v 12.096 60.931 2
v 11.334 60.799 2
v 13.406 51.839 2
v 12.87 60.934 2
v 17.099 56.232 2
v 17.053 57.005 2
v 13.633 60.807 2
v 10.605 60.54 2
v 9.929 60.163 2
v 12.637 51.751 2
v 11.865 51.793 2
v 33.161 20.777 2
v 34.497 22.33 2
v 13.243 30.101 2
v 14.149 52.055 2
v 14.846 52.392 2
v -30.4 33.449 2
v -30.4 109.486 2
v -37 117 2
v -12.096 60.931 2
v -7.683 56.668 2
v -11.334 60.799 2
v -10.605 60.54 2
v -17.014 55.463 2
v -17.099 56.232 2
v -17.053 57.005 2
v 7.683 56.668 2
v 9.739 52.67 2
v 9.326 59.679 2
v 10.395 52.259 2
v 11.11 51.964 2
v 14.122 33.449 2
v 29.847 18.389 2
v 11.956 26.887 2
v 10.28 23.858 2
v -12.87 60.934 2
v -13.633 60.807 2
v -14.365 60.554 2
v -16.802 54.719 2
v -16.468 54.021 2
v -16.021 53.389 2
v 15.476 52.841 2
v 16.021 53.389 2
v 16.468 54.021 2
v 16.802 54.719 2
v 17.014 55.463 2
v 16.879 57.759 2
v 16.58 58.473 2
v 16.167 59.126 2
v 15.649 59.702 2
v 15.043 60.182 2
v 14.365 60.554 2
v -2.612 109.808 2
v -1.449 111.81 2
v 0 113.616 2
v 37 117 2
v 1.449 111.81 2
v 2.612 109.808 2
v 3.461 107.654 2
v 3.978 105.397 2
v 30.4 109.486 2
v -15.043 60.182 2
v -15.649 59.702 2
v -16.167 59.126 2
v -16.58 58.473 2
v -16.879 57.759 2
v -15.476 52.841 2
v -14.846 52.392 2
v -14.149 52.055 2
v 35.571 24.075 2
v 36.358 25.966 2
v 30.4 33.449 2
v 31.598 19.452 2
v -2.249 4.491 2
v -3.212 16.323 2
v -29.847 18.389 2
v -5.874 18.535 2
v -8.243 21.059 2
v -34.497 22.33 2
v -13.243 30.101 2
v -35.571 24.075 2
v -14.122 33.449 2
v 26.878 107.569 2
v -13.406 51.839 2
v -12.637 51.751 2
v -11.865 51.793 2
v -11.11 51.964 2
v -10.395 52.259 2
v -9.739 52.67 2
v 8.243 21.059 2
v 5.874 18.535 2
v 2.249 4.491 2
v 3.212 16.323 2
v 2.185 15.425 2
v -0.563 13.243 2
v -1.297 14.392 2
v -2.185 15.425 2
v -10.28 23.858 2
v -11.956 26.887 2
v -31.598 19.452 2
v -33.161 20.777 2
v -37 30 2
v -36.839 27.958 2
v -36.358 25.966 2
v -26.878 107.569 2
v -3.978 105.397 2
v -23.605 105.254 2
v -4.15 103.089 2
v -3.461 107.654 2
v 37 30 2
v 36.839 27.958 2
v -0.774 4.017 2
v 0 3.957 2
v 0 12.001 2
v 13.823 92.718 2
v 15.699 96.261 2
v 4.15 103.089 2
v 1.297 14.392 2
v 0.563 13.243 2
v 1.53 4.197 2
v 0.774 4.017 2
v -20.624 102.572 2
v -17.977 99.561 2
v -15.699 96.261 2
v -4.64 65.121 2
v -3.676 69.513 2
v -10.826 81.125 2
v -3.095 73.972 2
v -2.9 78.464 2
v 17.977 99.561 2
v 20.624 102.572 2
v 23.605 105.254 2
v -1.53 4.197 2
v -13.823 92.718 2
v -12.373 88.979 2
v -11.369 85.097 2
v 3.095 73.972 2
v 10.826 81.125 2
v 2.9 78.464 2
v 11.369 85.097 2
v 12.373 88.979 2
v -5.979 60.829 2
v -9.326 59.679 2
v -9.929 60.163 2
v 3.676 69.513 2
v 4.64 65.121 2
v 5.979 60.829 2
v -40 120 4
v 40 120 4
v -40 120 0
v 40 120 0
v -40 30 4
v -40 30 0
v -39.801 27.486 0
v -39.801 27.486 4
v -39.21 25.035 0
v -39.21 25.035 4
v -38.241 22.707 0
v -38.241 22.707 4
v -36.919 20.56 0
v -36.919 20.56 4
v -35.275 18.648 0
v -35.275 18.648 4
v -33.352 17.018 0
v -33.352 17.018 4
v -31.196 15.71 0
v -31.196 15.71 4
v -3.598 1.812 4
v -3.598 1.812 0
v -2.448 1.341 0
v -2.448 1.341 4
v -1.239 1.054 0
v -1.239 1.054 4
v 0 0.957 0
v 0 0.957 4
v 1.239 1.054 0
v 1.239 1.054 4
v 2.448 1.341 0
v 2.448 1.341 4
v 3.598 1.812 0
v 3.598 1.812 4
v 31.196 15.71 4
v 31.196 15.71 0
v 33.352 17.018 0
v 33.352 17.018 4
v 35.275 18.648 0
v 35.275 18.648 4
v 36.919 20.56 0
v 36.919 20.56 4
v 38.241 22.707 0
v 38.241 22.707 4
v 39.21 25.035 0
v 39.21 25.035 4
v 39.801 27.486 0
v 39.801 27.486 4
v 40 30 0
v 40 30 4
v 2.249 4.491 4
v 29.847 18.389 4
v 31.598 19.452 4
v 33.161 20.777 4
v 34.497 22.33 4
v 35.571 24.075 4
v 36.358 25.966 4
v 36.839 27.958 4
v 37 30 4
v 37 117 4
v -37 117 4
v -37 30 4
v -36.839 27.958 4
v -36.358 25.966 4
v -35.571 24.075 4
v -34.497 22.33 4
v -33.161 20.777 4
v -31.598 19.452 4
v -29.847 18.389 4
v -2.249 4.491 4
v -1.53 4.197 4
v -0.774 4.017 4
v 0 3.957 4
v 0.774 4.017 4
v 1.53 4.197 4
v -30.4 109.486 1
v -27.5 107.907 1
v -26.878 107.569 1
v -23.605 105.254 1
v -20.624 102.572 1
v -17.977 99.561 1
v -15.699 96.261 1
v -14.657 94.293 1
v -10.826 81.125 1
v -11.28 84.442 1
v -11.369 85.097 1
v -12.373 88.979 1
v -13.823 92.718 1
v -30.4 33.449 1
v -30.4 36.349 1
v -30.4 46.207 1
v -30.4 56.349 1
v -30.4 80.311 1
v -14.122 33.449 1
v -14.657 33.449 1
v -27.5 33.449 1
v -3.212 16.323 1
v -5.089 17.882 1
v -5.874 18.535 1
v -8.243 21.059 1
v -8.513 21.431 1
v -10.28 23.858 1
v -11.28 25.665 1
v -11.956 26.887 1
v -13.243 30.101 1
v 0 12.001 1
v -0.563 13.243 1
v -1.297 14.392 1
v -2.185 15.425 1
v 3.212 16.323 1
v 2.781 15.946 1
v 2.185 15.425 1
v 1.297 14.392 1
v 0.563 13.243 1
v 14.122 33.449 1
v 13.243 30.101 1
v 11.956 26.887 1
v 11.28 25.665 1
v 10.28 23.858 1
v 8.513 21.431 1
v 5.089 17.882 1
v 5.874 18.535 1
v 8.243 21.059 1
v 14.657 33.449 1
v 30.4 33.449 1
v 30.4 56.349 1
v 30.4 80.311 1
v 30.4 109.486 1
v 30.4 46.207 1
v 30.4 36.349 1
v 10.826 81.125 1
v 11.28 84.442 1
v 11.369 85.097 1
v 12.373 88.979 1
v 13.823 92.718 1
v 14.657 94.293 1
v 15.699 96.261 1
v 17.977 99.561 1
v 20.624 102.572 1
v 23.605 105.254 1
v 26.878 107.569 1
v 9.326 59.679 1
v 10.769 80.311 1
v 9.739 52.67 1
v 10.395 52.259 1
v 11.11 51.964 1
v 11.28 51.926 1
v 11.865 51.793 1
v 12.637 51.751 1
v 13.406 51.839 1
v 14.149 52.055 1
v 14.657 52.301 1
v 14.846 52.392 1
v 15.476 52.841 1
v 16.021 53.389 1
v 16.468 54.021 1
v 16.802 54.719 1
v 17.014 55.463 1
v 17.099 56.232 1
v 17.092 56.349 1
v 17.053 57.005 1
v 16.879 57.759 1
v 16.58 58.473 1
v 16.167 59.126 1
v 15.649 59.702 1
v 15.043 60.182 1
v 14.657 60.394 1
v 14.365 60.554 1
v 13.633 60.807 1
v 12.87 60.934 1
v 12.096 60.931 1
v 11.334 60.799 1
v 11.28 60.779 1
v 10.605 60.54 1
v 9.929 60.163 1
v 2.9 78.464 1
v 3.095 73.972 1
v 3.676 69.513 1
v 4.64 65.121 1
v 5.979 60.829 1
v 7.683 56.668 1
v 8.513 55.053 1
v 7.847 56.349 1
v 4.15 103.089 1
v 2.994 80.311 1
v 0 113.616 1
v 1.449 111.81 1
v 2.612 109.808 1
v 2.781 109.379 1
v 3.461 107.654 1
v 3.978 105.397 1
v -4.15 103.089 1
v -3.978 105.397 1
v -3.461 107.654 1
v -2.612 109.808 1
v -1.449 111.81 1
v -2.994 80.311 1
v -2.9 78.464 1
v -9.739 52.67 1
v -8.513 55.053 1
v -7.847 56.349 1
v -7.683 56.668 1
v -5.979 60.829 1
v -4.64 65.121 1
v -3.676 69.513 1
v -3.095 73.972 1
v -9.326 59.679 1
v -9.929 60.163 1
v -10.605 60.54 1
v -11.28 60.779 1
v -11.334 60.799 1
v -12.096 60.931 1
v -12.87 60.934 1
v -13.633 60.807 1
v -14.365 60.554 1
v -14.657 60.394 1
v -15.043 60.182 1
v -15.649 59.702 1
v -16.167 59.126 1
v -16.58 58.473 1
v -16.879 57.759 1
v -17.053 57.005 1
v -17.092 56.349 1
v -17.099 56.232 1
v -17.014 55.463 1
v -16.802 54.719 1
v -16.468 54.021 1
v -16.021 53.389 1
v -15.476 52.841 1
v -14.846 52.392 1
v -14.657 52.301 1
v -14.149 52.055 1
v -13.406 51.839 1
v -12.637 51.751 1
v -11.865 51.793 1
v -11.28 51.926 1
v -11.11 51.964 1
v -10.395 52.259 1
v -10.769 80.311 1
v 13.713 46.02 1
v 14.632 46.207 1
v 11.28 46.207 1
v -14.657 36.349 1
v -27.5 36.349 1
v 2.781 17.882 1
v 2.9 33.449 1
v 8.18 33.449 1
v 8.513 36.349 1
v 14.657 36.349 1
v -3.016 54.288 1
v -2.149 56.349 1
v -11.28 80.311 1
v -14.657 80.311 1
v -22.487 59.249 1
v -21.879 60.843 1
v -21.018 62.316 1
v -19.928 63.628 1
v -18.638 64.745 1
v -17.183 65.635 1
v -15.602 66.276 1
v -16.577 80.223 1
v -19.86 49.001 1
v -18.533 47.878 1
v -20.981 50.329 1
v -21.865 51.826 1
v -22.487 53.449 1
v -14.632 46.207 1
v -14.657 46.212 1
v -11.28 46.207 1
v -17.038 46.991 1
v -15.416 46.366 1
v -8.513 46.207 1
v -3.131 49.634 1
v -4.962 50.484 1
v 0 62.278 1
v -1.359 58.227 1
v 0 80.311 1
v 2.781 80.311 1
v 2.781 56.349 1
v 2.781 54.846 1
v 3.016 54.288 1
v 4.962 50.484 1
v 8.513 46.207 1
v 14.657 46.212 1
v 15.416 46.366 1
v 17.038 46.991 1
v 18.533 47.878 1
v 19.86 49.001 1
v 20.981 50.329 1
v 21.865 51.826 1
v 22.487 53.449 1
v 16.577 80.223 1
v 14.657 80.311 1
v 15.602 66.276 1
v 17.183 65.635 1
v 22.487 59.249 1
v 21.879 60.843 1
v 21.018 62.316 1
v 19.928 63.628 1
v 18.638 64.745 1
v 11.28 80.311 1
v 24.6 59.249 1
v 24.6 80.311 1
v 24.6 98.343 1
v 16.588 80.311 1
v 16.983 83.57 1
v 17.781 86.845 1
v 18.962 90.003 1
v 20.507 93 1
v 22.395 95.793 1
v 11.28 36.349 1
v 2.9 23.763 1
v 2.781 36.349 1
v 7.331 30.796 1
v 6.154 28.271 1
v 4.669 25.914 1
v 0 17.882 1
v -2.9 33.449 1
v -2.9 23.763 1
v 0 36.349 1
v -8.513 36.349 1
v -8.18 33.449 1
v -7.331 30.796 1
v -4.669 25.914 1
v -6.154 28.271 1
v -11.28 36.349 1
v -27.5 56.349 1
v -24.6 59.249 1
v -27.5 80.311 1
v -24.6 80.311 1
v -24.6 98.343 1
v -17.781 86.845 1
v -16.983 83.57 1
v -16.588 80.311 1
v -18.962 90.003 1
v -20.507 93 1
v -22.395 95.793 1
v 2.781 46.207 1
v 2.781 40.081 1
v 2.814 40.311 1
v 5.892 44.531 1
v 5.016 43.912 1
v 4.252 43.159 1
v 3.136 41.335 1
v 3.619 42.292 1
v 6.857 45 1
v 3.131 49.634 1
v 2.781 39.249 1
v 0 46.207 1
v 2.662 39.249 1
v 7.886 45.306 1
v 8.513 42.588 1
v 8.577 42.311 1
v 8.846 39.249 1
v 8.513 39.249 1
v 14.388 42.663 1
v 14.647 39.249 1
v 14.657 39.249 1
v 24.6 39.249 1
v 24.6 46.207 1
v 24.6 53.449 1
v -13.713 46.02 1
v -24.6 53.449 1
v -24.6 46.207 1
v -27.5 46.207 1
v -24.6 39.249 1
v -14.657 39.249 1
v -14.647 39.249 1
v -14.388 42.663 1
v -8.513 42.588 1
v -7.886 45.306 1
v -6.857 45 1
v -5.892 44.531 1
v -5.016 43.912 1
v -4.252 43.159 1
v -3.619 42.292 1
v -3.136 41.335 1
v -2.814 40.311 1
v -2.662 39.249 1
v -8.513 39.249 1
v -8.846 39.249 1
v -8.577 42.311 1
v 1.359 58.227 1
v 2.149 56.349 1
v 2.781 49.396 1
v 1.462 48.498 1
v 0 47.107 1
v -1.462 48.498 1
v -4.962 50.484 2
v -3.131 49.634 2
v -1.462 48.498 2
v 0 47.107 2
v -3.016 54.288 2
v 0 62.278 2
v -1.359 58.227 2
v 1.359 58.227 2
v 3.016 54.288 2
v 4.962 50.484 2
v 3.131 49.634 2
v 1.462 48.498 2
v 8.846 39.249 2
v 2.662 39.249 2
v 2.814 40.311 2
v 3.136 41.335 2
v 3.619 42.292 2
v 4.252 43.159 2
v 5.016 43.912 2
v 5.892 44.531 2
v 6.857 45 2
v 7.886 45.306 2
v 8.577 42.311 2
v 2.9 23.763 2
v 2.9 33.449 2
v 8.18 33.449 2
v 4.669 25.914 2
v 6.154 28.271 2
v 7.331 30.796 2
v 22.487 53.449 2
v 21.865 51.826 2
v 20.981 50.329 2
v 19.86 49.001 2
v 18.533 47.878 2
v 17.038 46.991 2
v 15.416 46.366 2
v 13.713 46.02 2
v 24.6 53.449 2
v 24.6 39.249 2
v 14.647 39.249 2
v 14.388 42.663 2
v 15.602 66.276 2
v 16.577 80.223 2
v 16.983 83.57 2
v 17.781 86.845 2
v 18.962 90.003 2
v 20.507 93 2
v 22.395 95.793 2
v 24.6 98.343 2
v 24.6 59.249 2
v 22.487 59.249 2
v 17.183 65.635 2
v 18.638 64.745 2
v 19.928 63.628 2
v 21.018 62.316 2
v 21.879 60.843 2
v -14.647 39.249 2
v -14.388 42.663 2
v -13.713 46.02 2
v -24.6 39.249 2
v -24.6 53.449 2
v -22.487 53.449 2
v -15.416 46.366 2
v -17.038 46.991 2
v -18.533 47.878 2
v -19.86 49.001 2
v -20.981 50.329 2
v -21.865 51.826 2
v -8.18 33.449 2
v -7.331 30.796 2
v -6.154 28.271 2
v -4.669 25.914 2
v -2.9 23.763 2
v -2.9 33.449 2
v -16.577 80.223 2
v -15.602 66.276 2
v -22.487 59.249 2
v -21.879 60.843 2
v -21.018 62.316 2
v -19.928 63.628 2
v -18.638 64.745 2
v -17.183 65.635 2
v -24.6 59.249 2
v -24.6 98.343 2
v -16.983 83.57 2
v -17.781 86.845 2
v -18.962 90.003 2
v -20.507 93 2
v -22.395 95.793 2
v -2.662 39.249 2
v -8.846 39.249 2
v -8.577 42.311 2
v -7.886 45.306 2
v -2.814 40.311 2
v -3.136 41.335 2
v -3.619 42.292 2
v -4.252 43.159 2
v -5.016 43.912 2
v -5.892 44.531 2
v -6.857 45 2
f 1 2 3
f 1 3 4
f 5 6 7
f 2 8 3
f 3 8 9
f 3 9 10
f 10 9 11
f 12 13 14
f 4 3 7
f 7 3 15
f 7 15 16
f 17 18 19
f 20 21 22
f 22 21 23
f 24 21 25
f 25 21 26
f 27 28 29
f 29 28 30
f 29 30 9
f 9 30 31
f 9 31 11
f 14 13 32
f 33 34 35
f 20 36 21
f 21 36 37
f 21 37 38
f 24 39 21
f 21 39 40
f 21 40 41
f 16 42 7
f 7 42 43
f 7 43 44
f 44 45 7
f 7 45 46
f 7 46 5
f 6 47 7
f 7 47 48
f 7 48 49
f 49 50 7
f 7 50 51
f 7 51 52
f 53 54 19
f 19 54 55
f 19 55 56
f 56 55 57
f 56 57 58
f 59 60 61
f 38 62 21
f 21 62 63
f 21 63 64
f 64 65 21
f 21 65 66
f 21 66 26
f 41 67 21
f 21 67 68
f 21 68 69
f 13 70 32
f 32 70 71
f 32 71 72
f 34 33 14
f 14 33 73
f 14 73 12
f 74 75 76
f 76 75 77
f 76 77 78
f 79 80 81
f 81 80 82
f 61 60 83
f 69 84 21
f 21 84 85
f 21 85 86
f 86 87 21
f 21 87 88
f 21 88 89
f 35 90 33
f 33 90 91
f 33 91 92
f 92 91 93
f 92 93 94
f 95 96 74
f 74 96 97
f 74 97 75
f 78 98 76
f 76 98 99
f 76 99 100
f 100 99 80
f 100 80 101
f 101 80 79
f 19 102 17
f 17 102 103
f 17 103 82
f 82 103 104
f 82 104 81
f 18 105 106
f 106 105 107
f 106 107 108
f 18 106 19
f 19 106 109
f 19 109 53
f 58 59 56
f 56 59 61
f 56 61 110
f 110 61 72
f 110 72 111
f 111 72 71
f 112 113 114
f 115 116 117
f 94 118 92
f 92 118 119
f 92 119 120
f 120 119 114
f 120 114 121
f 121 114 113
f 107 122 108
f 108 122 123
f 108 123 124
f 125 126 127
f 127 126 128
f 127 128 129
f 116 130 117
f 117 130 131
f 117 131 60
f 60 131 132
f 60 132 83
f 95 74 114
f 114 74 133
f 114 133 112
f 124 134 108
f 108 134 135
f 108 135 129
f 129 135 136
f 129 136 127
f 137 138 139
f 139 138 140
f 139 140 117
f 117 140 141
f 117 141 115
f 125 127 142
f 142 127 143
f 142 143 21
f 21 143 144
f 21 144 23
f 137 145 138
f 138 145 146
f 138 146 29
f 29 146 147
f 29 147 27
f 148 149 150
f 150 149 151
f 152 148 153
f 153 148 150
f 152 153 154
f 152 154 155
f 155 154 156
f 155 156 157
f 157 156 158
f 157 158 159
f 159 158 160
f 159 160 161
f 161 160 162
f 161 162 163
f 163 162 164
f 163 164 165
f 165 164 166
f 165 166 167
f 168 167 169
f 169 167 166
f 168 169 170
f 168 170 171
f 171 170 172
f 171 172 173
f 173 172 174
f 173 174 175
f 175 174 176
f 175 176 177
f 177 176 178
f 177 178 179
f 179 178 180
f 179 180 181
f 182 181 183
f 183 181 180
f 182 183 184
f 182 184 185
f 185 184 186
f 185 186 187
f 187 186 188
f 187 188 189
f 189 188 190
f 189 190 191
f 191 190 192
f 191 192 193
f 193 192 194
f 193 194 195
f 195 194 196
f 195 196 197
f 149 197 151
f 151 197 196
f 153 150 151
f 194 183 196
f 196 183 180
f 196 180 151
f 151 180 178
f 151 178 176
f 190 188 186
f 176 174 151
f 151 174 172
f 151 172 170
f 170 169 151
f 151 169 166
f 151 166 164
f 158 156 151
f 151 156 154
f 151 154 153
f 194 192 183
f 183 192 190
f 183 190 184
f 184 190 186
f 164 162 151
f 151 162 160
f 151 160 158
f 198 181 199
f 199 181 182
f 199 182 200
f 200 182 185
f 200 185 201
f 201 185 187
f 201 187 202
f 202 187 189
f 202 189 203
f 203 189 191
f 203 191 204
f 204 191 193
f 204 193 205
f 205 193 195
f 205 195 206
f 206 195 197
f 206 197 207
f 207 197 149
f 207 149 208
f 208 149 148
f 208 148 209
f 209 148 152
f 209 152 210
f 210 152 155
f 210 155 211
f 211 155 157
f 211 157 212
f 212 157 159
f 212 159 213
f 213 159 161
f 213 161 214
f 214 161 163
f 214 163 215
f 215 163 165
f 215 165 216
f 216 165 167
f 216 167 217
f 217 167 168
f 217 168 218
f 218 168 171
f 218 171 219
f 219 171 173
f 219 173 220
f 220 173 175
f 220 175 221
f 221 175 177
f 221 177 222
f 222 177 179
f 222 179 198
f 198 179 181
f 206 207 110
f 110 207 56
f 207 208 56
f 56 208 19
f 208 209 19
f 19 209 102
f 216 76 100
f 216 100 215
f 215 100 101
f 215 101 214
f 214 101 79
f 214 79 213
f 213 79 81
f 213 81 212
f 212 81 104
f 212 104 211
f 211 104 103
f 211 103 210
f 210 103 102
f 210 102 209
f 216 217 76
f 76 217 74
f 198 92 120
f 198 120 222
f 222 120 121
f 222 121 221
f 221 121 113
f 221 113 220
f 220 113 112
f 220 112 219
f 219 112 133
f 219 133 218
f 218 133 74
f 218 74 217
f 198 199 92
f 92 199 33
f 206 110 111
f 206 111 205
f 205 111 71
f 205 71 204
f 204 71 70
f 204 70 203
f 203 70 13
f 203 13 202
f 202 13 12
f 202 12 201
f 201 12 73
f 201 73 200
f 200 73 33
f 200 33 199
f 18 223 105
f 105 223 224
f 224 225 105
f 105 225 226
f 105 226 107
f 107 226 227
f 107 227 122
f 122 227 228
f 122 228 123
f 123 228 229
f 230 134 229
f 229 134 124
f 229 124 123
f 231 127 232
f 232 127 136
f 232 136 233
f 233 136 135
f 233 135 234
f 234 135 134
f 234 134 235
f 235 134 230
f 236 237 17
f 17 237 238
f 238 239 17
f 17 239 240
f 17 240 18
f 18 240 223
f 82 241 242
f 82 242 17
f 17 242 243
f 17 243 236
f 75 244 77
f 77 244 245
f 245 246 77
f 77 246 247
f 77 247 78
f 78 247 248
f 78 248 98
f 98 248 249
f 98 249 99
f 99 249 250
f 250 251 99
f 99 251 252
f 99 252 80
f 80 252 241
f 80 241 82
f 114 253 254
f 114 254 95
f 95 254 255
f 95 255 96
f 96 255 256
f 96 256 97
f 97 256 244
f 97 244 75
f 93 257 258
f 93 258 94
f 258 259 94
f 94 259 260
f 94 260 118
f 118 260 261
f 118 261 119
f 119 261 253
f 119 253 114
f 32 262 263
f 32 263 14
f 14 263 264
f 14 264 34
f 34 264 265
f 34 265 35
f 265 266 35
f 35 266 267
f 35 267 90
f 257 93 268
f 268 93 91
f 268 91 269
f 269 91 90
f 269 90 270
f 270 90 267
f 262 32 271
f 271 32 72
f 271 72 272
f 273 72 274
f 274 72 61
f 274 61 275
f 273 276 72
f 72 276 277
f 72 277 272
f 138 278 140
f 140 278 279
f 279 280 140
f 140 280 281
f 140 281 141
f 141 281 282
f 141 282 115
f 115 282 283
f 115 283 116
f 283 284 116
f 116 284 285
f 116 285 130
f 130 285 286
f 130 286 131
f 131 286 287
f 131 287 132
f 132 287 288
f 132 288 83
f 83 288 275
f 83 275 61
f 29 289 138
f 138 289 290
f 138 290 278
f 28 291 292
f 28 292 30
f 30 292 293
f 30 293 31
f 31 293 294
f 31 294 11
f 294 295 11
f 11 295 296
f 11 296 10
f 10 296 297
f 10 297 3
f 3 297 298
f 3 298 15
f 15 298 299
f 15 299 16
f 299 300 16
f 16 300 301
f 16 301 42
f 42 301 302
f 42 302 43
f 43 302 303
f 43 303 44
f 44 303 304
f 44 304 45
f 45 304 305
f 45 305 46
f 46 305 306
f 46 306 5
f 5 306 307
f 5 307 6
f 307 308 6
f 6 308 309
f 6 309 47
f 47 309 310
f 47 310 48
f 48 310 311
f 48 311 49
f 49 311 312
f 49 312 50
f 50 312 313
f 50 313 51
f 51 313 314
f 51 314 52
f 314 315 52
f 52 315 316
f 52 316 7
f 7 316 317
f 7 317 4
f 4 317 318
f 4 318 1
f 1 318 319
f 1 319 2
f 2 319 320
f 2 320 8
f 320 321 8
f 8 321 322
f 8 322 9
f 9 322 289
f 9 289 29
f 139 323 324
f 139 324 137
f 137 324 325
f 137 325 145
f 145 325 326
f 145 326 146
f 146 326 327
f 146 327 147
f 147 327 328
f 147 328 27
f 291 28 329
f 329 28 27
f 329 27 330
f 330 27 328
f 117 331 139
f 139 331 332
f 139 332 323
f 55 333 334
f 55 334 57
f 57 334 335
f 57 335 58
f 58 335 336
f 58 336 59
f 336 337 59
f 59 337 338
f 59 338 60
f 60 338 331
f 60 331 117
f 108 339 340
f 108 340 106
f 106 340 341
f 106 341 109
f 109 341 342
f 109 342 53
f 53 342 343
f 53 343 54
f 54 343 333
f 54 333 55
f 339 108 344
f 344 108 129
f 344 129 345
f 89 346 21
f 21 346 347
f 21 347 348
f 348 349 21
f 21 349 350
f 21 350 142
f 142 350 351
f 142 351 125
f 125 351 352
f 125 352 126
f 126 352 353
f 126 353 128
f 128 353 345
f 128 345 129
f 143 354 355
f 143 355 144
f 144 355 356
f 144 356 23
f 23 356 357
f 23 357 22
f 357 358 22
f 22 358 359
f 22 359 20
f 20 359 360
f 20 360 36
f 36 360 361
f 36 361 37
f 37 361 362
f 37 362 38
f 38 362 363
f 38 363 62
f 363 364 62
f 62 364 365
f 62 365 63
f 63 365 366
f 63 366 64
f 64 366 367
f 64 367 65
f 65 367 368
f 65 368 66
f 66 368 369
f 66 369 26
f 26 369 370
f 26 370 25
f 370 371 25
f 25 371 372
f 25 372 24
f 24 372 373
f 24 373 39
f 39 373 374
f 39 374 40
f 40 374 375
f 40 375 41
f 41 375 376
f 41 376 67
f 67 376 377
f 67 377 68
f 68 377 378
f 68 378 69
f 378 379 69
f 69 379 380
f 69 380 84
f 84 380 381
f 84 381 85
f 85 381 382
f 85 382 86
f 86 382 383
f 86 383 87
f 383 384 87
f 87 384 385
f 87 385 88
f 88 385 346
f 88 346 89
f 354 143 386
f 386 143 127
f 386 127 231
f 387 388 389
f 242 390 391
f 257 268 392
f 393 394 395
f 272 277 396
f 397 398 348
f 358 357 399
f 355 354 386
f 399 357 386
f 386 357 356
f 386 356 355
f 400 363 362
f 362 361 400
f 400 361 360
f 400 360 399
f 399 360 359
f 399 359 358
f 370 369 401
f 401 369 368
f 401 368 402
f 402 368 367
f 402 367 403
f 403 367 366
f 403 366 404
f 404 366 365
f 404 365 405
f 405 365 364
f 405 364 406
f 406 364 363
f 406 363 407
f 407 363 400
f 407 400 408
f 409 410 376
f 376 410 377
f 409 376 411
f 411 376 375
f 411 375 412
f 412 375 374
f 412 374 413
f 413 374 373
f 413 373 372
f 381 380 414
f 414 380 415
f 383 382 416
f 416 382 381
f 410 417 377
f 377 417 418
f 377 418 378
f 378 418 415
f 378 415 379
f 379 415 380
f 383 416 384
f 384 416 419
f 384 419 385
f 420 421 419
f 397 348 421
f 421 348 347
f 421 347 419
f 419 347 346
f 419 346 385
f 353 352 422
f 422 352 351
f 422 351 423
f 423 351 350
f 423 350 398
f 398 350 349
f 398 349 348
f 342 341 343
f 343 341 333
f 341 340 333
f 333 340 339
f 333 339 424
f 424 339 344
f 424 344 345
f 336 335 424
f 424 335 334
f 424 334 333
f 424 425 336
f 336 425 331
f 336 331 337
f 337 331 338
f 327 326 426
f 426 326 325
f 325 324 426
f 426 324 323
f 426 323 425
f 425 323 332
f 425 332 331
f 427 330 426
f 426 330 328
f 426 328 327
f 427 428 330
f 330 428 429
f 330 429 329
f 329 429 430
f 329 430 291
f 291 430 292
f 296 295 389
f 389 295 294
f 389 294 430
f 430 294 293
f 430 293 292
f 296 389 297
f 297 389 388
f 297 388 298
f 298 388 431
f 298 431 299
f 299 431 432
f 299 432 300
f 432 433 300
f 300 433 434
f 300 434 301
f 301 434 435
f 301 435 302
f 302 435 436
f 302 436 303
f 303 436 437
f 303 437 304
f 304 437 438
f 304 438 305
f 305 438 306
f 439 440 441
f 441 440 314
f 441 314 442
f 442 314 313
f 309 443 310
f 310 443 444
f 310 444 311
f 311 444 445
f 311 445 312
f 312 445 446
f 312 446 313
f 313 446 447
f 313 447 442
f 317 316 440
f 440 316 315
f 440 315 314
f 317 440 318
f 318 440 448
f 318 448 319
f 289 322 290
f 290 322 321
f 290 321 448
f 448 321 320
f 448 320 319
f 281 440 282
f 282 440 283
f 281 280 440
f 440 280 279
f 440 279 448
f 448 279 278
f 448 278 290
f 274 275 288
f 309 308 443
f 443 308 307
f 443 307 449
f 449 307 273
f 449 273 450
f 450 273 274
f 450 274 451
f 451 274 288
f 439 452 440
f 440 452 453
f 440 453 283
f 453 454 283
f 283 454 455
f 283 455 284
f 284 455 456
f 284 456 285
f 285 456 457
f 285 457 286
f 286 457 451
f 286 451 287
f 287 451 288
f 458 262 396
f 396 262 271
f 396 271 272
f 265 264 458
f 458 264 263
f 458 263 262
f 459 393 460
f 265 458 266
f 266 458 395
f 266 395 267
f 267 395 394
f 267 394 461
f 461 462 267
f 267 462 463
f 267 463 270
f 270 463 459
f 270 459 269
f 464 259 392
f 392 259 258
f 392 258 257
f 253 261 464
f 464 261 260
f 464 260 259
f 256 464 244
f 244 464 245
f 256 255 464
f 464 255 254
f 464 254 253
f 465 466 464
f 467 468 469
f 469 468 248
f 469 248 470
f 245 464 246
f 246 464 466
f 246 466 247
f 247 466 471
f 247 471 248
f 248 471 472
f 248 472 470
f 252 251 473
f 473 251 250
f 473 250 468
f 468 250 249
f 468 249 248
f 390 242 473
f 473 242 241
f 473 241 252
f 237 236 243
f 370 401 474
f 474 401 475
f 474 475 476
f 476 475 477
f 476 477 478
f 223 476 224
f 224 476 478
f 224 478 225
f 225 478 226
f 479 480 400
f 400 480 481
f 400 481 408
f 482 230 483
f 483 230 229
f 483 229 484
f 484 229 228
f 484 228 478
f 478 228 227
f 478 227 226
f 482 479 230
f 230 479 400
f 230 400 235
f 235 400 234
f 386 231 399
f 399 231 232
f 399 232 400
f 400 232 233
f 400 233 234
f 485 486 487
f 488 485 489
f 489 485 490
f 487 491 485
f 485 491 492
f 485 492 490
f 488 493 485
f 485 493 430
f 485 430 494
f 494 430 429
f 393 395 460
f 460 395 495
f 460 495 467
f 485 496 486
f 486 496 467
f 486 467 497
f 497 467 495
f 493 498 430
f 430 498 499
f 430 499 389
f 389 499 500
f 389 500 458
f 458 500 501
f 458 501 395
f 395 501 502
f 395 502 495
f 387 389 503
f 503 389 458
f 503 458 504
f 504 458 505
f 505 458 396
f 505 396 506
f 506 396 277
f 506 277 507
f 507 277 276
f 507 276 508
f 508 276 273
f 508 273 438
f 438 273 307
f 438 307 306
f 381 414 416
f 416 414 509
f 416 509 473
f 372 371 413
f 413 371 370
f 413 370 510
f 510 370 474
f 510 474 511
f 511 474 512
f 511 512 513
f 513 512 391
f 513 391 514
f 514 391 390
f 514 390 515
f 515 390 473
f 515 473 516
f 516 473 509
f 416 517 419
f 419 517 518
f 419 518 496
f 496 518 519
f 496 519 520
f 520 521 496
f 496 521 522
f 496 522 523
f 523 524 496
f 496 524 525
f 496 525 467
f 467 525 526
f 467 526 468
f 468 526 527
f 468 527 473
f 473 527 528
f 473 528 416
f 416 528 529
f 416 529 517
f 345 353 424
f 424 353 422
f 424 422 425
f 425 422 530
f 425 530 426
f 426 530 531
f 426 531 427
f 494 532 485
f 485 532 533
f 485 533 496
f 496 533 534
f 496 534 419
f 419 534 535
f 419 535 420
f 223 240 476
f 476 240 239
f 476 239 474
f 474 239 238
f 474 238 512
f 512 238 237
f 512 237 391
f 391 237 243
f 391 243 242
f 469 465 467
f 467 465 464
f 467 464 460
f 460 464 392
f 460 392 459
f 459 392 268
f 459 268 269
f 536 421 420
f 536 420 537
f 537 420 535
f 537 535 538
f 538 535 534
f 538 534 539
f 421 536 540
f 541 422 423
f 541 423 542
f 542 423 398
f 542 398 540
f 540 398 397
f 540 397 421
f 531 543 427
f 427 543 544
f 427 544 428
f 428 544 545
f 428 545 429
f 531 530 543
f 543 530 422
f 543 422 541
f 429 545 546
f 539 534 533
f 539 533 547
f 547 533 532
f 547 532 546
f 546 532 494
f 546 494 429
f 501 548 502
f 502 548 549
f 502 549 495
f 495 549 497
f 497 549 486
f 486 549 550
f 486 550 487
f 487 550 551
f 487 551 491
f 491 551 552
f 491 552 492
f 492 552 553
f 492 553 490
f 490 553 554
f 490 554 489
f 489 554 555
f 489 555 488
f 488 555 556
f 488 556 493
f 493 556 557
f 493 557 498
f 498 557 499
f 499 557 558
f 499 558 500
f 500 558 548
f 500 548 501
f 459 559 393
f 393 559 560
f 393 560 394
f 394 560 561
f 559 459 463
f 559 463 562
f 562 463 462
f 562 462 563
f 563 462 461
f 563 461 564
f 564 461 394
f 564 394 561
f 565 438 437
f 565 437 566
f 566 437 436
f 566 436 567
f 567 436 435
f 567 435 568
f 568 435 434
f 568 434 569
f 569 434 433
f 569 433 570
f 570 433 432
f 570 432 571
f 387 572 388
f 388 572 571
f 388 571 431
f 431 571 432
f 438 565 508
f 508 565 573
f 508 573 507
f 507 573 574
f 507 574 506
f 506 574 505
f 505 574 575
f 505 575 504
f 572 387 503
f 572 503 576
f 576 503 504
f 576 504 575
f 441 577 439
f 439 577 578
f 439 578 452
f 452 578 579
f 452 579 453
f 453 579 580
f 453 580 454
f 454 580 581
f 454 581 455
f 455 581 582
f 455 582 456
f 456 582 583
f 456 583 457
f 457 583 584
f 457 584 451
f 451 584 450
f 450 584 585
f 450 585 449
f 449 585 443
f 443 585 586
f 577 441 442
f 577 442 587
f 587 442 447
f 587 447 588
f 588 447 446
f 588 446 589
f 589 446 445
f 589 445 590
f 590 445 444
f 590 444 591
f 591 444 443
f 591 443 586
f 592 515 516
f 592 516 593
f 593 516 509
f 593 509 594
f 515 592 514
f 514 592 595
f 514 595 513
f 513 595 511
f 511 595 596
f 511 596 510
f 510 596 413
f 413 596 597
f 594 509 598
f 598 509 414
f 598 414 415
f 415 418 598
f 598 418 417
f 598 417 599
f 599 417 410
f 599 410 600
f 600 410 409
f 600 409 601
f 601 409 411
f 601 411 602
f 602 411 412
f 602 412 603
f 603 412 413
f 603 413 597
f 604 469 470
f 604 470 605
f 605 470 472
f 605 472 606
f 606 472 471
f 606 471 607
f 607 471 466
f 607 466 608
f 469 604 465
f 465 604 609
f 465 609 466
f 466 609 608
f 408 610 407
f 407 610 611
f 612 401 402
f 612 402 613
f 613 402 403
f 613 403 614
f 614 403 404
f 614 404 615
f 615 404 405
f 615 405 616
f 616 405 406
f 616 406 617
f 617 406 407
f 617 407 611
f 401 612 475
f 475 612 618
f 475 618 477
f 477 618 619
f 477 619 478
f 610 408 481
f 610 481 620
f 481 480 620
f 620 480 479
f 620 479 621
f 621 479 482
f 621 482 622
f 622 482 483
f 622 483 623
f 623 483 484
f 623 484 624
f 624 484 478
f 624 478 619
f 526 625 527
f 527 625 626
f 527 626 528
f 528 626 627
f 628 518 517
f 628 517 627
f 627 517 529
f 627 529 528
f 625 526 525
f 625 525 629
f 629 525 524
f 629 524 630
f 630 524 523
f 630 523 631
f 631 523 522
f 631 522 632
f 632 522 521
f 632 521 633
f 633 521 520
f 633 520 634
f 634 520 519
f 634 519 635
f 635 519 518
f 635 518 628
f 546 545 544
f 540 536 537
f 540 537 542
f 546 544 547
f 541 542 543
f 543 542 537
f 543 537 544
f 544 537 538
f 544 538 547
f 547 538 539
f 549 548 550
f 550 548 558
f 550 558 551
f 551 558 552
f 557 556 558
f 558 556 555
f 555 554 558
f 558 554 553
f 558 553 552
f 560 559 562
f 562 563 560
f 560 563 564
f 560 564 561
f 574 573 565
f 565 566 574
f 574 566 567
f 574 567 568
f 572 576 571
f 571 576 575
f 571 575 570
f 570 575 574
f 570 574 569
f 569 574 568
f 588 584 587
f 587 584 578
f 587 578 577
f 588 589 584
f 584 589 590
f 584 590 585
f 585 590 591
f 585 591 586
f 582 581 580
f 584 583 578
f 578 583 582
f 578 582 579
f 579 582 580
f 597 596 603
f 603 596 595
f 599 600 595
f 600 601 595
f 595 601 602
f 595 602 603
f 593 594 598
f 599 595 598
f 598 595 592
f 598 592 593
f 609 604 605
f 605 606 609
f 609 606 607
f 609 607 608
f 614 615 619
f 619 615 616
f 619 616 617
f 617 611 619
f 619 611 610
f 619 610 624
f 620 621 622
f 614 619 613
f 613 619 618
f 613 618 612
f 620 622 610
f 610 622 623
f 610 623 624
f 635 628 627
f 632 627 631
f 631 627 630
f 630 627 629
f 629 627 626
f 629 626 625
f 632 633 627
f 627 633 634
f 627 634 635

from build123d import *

# Parameters (mm, degrees)
EXTRUDE_1_DEPTH     = 2
EXTRUDE_2_DEPTH     = 2
OTHER_START         = 1
OTHER_1_DEPTH       = 1
CUT_EXTRUDE_1_DEPTH = 10


# Read off the part's stored shape, not the designer's step: Полость1
with BuildPart() as part:
    # Эскиз1 → Бобышка-Вытянуть1 (new body)
    with BuildSketch(Plane.XY):
        with BuildLine():
            Line((-3.59812982, 1.811928513), (-31.19625964, 15.709658955))
            ThreePointArc((-31.19625964, 15.709658955), (-37.622410841, 21.607746257), (-40, 30))
            Line((-40, 30), (-40, 120))
            Line((-40, 120), (40, 120))
            Line((40, 120), (40, 30))
            ThreePointArc((40, 30), (37.622410841, 21.607746257), (31.19625964, 15.709658955))
            Line((31.19625964, 15.709658955), (3.59812982, 1.811928513))
            ThreePointArc((3.59812982, 1.811928513), (0, 0.957099036), (-3.59812982, 1.811928513))
        make_face()
    extrude(amount=EXTRUDE_1_DEPTH)

    # Эскиз2 → Бобышка-Вытянуть2 (add)
    with BuildSketch(Plane.XY.offset(2)):
        with BuildLine():
            Line((40, 120), (-40, 120))
            Line((-40, 120), (-40, 30))
            ThreePointArc((-40, 30), (-37.622410841, 21.607746257), (-31.19625964, 15.709658955))
            Line((-31.19625964, 15.709658955), (-3.59812982, 1.811928513))
            ThreePointArc((-3.59812982, 1.811928513), (0, 0.957099036), (3.59812982, 1.811928513))
            Line((3.59812982, 1.811928513), (31.19625964, 15.709658955))
            ThreePointArc((31.19625964, 15.709658955), (37.622410841, 21.607746257), (40, 30))
            Line((40, 30), (40, 120))
        make_face()
        with BuildLine():
            Line((37, 117), (-37, 117))
            Line((-37, 117), (-37, 30))
            ThreePointArc((-37, 30), (-35.068208808, 23.181293834), (-29.846960958, 18.389097901))
            Line((-29.846960958, 18.389097901), (-2.248831138, 4.491367459))
            ThreePointArc((-2.248831138, 4.491367459), (0, 3.957099036), (2.248831138, 4.491367459))
            Line((2.248831138, 4.491367459), (29.846960958, 18.389097901))
            ThreePointArc((29.846960958, 18.389097901), (35.068208808, 23.181293834), (37, 30))
            Line((37, 30), (37, 117))
        make_face(mode=Mode.SUBTRACT)
    extrude(amount=EXTRUDE_2_DEPTH)

    # Полость1 outline → Полость1 (cut)
    with BuildSketch(Plane.XY.offset(OTHER_START)):
        with BuildLine():
            ThreePointArc((9.788029472, 60.549586915), (17.495233568, 56.130696454), (9.431968209, 52.400905625))
            ThreePointArc((9.431968209, 52.400905625), (4.262579544, 64.984556644), (2.5, 78.473966026))
            Line((2.5, 78.473966026), (3.75, 103.098966026))
            ThreePointArc((3.75, 103.098966026), (2.7812152, 108.402266884), (0, 113.020533442))
            ThreePointArc((0, 113.020533442), (-2.7812152, 108.402266884), (-3.75, 103.098966026))
            Line((-3.75, 103.098966026), (-2.5, 78.473966026))
            ThreePointArc((-2.5, 78.473966026), (-4.262579544, 64.984556644), (-9.431968209, 52.400905625))
            ThreePointArc((-9.431968209, 52.400905625), (-17.495233567, 56.130696454), (-9.788029472, 60.549586915))
            Line((-9.788029472, 60.549586915), (-11.224736233, 81.095450805))
            ThreePointArc((-11.224736233, 81.095450805), (-16.940759264, 97.456053222), (-30, 108.848966026))
            Line((-30, 108.848966026), (-30, 33.848966026))
            Line((-30, 33.848966026), (-13.791634566, 33.848966026))
            ThreePointArc((-13.791634566, 33.848966026), (-10.030008845, 24.210277963), (-2.972883984, 16.643830691))
            ThreePointArc((-2.972883984, 16.643830691), (-1.271172874, 15.008808512), (0, 13.020533442))
            ThreePointArc((0, 13.020533442), (1.271172874, 15.008808512), (2.972883984, 16.643830691))
            ThreePointArc((2.972883984, 16.643830691), (10.030008845, 24.210277963), (13.791634566, 33.848966026))
            Line((13.791634566, 33.848966026), (30, 33.848966026))
            Line((30, 33.848966026), (30, 108.848966026))
            ThreePointArc((30, 108.848966026), (16.940759264, 97.456053222), (11.224736233, 81.095450805))
            Line((11.224736233, 81.095450805), (9.788029472, 60.549586915))
        make_face()
        with BuildLine():
            ThreePointArc((-2.5, 22.780752061), (-6.389541147, 27.869966821), (-8.687410968, 33.848966026))
            Line((-8.687410968, 33.848966026), (-2.5, 33.848966026))
            Line((-2.5, 33.848966026), (-2.5, 22.780752061))
        make_face(mode=Mode.SUBTRACT)
        with BuildLine():
            ThreePointArc((-13.200536483, 46.373533772), (-13.986370475, 42.647666246), (-14.25, 38.848966026))
            Line((-14.25, 38.848966026), (-25, 38.848966026))
            Line((-25, 38.848966026), (-25, 53.848966026))
            Line((-25, 53.848966026), (-22.182458365, 53.848966026))
            ThreePointArc((-22.182458365, 53.848966026), (-18.897043641, 48.662755473), (-13.200536483, 46.373533772))
        make_face(mode=Mode.SUBTRACT)
        with BuildLine():
            ThreePointArc((-8.161111111, 45.763756043), (-3.92918135, 43.397470053), (-2.25, 38.848966026))
            Line((-2.25, 38.848966026), (-9.25, 38.848966026))
            ThreePointArc((-9.25, 38.848966026), (-8.976110771, 42.348966026), (-8.161111111, 45.763756043))
        make_face(mode=Mode.SUBTRACT)
        with BuildLine():
            Line((2.5, 22.780752061), (2.5, 33.848966026))
            Line((2.5, 33.848966026), (8.687410969, 33.848966026))
            ThreePointArc((8.687410969, 33.848966026), (6.389541147, 27.869966821), (2.5, 22.780752061))
        make_face(mode=Mode.SUBTRACT)
        with BuildLine():
            ThreePointArc((2.25, 38.848966026), (3.92918135, 43.397470053), (8.161111111, 45.763756043))
            ThreePointArc((8.161111111, 45.763756043), (8.976110771, 42.348966026), (9.25, 38.848966026))
            Line((9.25, 38.848966026), (2.25, 38.848966026))
        make_face(mode=Mode.SUBTRACT)
        with BuildLine():
            ThreePointArc((0, 63.756825508), (2.33883829, 56.831501462), (5.545675565, 50.262904017))
            ThreePointArc((5.545675565, 50.262904017), (2.504193555, 48.773385172), (0, 46.493408451))
            ThreePointArc((0, 46.493408451), (-2.504193555, 48.773385172), (-5.545675565, 50.262904017))
            ThreePointArc((-5.545675565, 50.262904017), (-2.33883829, 56.831501462), (0, 63.756825508))
        make_face(mode=Mode.SUBTRACT)
        with BuildLine():
            ThreePointArc((14.25, 38.848966026), (13.986370475, 42.647666246), (13.200536483, 46.373533772))
            ThreePointArc((13.200536483, 46.373533772), (18.897043642, 48.662755473), (22.182458366, 53.848966026))
            Line((22.182458366, 53.848966026), (25, 53.848966026))
            Line((25, 53.848966026), (25, 38.848966026))
            Line((25, 38.848966026), (14.25, 38.848966026))
        make_face(mode=Mode.SUBTRACT)
        with BuildLine():
            ThreePointArc((-15.180187421, 65.983103008), (-19.636717055, 63.353769354), (-22.182458365, 58.848966026))
            Line((-22.182458365, 58.848966026), (-25, 58.848966026))
            Line((-25, 58.848966026), (-25, 99.303564565))
            ThreePointArc((-25, 99.303564565), (-18.795712851, 90.606876243), (-16.177801663, 80.249651334))
            Line((-16.177801663, 80.249651334), (-15.180187421, 65.983103008))
        make_face(mode=Mode.SUBTRACT)
        with BuildLine():
            ThreePointArc((16.177801663, 80.249651334), (18.795712851, 90.606876243), (25, 99.303564565))
            Line((25, 99.303564565), (25, 58.848966026))
            Line((25, 58.848966026), (22.182458366, 58.848966026))
            ThreePointArc((22.182458366, 58.848966026), (19.636717055, 63.353769354), (15.180187421, 65.983103008))
            Line((15.180187421, 65.983103008), (16.177801663, 80.249651334))
        make_face(mode=Mode.SUBTRACT)
    extrude(amount=OTHER_1_DEPTH, mode=Mode.SUBTRACT)

    # Эскиз3 → Вырез-Вытянуть1 (cut)
    with BuildSketch(Plane.XY.offset(1)):
        with BuildLine():
            Line((-30.4, 109.485933086), (-30.4, 33.448966026))
            Line((-30.4, 33.448966026), (-14.122431386, 33.448966026))
            ThreePointArc((-14.122431386, 33.448966026), (-10.280405338, 23.857967906), (-3.211502278, 16.322782533))
            ThreePointArc((-3.211502278, 16.322782533), (-1.296555795, 14.391675131), (0, 12.001039461))
            ThreePointArc((0, 12.001039461), (1.296555795, 14.391675131), (3.211502278, 16.322782533))
            ThreePointArc((3.211502278, 16.322782533), (10.280405338, 23.857967906), (14.122431386, 33.448966026))
            Line((14.122431386, 33.448966026), (30.4, 33.448966026))
            Line((30.4, 33.448966026), (30.4, 109.485933086))
            ThreePointArc((30.4, 109.485933086), (16.789759987, 97.944057432), (10.825816986, 81.124874611))
            Line((10.825816986, 81.124874611), (9.326149592, 59.678631713))
            ThreePointArc((9.326149592, 59.678631713), (17.092035273, 56.619543276), (9.739143413, 52.669608621))
            ThreePointArc((9.739143413, 52.669608621), (4.640098892, 65.12142468), (2.900000984, 78.46383966))
            Line((2.900000984, 78.46383966), (4.149996614, 103.088753565))
            ThreePointArc((4.149996614, 103.088753565), (3.076851741, 108.747091307), (0, 113.615500626))
            ThreePointArc((0, 113.615500626), (-3.076851741, 108.747091307), (-4.149996614, 103.088753565))
            Line((-4.149996614, 103.088753565), (-2.900000984, 78.46383966))
            ThreePointArc((-2.900000984, 78.46383966), (-4.640098892, 65.12142468), (-9.739143413, 52.669608621))
            ThreePointArc((-9.739143413, 52.669608621), (-17.092035273, 56.619543276), (-9.326149592, 59.678631713))
            Line((-9.326149592, 59.678631713), (-10.825816986, 81.124874611))
            ThreePointArc((-10.825816986, 81.124874611), (-16.789759986, 97.944057431), (-30.4, 109.485933086))
        make_face()
        with BuildLine():
            Line((-24.6, 98.342803418), (-24.6, 59.248966026))
            Line((-24.6, 59.248966026), (-22.487492178, 59.248966026))
            ThreePointArc((-22.487492178, 59.248966026), (-19.927985451, 63.628047845), (-15.601624133, 66.275693973))
            Line((-15.601624133, 66.275693973), (-16.57694324, 80.223407018))
            ThreePointArc((-16.57694324, 80.223407018), (-18.961550559, 90.003486832), (-24.6, 98.342803418))
        make_face(mode=Mode.SUBTRACT)
        with BuildLine():
            Line((-24.6, 39.248966026), (-14.647132469, 39.248966026))
            ThreePointArc((-14.647132469, 39.248966026), (-14.388051735, 42.663162704), (-13.71270618, 46.019912646))
            ThreePointArc((-13.71270618, 46.019912646), (-19.220031201, 48.411637718), (-22.487492178, 53.448966026))
            Line((-22.487492178, 53.448966026), (-24.6, 53.448966026))
            Line((-24.6, 53.448966026), (-24.6, 39.248966026))
        make_face(mode=Mode.SUBTRACT)
        with BuildLine():
            Line((-8.846379794, 39.248966026), (-2.662132363, 39.248966026))
            ThreePointArc((-2.662132363, 39.248966026), (-4.251709751, 43.159081405), (-7.885555556, 45.306387443))
            ThreePointArc((-7.885555556, 45.306387443), (-8.577119532, 42.311169504), (-8.846379794, 39.248966026))
        make_face(mode=Mode.SUBTRACT)
        with BuildLine():
            Line((2.662132363, 39.248966026), (8.846379794, 39.248966026))
            ThreePointArc((8.846379794, 39.248966026), (8.577119532, 42.311169504), (7.885555556, 45.306387443))
            ThreePointArc((7.885555556, 45.306387443), (4.251709751, 43.159081405), (2.662132363, 39.248966026))
        make_face(mode=Mode.SUBTRACT)
        with BuildLine():
            Line((-2.9, 33.448966026), (-8.180118992, 33.448966026))
            ThreePointArc((-8.180118992, 33.448966026), (-6.154149081, 28.271206412), (-2.9, 23.762962579))
            Line((-2.9, 23.762962579), (-2.9, 33.448966026))
        make_face(mode=Mode.SUBTRACT)
        with BuildLine():
            Line((8.180118992, 33.448966026), (2.9, 33.448966026))
            Line((2.9, 33.448966026), (2.9, 23.762962579))
            ThreePointArc((2.9, 23.762962579), (6.154149081, 28.271206412), (8.180118992, 33.448966026))
        make_face(mode=Mode.SUBTRACT)
        with BuildLine():
            Line((14.647132469, 39.248966026), (24.6, 39.248966026))
            Line((24.6, 39.248966026), (24.6, 53.448966026))
            Line((24.6, 53.448966026), (22.487492178, 53.448966026))
            ThreePointArc((22.487492178, 53.448966026), (19.220031201, 48.411637718), (13.71270618, 46.019912646))
            ThreePointArc((13.71270618, 46.019912646), (14.388051735, 42.663162704), (14.647132469, 39.248966026))
        make_face(mode=Mode.SUBTRACT)
        with BuildLine():
            Line((22.487492178, 59.248966026), (24.6, 59.248966026))
            Line((24.6, 59.248966026), (24.6, 98.342803418))
            ThreePointArc((24.6, 98.342803418), (18.961550559, 90.003486832), (16.57694324, 80.223407018))
            Line((16.57694324, 80.223407018), (15.601624133, 66.275693973))
            ThreePointArc((15.601624133, 66.275693973), (19.927985451, 63.628047845), (22.487492178, 59.248966026))
        make_face(mode=Mode.SUBTRACT)
        with BuildLine():
            ThreePointArc((0, 47.107143791), (-2.273385478, 49.100153753), (-4.961500663, 50.483774724))
            ThreePointArc((-4.961500663, 50.483774724), (-2.150697128, 56.242155237), (0, 62.278218899))
            ThreePointArc((0, 62.278218899), (2.150697128, 56.242155237), (4.961500663, 50.483774724))
            ThreePointArc((4.961500663, 50.483774724), (2.273385478, 49.100153753), (0, 47.107143791))
        make_face(mode=Mode.SUBTRACT)
    extrude(amount=CUT_EXTRUDE_1_DEPTH, mode=Mode.SUBTRACT)


solid = part.part
